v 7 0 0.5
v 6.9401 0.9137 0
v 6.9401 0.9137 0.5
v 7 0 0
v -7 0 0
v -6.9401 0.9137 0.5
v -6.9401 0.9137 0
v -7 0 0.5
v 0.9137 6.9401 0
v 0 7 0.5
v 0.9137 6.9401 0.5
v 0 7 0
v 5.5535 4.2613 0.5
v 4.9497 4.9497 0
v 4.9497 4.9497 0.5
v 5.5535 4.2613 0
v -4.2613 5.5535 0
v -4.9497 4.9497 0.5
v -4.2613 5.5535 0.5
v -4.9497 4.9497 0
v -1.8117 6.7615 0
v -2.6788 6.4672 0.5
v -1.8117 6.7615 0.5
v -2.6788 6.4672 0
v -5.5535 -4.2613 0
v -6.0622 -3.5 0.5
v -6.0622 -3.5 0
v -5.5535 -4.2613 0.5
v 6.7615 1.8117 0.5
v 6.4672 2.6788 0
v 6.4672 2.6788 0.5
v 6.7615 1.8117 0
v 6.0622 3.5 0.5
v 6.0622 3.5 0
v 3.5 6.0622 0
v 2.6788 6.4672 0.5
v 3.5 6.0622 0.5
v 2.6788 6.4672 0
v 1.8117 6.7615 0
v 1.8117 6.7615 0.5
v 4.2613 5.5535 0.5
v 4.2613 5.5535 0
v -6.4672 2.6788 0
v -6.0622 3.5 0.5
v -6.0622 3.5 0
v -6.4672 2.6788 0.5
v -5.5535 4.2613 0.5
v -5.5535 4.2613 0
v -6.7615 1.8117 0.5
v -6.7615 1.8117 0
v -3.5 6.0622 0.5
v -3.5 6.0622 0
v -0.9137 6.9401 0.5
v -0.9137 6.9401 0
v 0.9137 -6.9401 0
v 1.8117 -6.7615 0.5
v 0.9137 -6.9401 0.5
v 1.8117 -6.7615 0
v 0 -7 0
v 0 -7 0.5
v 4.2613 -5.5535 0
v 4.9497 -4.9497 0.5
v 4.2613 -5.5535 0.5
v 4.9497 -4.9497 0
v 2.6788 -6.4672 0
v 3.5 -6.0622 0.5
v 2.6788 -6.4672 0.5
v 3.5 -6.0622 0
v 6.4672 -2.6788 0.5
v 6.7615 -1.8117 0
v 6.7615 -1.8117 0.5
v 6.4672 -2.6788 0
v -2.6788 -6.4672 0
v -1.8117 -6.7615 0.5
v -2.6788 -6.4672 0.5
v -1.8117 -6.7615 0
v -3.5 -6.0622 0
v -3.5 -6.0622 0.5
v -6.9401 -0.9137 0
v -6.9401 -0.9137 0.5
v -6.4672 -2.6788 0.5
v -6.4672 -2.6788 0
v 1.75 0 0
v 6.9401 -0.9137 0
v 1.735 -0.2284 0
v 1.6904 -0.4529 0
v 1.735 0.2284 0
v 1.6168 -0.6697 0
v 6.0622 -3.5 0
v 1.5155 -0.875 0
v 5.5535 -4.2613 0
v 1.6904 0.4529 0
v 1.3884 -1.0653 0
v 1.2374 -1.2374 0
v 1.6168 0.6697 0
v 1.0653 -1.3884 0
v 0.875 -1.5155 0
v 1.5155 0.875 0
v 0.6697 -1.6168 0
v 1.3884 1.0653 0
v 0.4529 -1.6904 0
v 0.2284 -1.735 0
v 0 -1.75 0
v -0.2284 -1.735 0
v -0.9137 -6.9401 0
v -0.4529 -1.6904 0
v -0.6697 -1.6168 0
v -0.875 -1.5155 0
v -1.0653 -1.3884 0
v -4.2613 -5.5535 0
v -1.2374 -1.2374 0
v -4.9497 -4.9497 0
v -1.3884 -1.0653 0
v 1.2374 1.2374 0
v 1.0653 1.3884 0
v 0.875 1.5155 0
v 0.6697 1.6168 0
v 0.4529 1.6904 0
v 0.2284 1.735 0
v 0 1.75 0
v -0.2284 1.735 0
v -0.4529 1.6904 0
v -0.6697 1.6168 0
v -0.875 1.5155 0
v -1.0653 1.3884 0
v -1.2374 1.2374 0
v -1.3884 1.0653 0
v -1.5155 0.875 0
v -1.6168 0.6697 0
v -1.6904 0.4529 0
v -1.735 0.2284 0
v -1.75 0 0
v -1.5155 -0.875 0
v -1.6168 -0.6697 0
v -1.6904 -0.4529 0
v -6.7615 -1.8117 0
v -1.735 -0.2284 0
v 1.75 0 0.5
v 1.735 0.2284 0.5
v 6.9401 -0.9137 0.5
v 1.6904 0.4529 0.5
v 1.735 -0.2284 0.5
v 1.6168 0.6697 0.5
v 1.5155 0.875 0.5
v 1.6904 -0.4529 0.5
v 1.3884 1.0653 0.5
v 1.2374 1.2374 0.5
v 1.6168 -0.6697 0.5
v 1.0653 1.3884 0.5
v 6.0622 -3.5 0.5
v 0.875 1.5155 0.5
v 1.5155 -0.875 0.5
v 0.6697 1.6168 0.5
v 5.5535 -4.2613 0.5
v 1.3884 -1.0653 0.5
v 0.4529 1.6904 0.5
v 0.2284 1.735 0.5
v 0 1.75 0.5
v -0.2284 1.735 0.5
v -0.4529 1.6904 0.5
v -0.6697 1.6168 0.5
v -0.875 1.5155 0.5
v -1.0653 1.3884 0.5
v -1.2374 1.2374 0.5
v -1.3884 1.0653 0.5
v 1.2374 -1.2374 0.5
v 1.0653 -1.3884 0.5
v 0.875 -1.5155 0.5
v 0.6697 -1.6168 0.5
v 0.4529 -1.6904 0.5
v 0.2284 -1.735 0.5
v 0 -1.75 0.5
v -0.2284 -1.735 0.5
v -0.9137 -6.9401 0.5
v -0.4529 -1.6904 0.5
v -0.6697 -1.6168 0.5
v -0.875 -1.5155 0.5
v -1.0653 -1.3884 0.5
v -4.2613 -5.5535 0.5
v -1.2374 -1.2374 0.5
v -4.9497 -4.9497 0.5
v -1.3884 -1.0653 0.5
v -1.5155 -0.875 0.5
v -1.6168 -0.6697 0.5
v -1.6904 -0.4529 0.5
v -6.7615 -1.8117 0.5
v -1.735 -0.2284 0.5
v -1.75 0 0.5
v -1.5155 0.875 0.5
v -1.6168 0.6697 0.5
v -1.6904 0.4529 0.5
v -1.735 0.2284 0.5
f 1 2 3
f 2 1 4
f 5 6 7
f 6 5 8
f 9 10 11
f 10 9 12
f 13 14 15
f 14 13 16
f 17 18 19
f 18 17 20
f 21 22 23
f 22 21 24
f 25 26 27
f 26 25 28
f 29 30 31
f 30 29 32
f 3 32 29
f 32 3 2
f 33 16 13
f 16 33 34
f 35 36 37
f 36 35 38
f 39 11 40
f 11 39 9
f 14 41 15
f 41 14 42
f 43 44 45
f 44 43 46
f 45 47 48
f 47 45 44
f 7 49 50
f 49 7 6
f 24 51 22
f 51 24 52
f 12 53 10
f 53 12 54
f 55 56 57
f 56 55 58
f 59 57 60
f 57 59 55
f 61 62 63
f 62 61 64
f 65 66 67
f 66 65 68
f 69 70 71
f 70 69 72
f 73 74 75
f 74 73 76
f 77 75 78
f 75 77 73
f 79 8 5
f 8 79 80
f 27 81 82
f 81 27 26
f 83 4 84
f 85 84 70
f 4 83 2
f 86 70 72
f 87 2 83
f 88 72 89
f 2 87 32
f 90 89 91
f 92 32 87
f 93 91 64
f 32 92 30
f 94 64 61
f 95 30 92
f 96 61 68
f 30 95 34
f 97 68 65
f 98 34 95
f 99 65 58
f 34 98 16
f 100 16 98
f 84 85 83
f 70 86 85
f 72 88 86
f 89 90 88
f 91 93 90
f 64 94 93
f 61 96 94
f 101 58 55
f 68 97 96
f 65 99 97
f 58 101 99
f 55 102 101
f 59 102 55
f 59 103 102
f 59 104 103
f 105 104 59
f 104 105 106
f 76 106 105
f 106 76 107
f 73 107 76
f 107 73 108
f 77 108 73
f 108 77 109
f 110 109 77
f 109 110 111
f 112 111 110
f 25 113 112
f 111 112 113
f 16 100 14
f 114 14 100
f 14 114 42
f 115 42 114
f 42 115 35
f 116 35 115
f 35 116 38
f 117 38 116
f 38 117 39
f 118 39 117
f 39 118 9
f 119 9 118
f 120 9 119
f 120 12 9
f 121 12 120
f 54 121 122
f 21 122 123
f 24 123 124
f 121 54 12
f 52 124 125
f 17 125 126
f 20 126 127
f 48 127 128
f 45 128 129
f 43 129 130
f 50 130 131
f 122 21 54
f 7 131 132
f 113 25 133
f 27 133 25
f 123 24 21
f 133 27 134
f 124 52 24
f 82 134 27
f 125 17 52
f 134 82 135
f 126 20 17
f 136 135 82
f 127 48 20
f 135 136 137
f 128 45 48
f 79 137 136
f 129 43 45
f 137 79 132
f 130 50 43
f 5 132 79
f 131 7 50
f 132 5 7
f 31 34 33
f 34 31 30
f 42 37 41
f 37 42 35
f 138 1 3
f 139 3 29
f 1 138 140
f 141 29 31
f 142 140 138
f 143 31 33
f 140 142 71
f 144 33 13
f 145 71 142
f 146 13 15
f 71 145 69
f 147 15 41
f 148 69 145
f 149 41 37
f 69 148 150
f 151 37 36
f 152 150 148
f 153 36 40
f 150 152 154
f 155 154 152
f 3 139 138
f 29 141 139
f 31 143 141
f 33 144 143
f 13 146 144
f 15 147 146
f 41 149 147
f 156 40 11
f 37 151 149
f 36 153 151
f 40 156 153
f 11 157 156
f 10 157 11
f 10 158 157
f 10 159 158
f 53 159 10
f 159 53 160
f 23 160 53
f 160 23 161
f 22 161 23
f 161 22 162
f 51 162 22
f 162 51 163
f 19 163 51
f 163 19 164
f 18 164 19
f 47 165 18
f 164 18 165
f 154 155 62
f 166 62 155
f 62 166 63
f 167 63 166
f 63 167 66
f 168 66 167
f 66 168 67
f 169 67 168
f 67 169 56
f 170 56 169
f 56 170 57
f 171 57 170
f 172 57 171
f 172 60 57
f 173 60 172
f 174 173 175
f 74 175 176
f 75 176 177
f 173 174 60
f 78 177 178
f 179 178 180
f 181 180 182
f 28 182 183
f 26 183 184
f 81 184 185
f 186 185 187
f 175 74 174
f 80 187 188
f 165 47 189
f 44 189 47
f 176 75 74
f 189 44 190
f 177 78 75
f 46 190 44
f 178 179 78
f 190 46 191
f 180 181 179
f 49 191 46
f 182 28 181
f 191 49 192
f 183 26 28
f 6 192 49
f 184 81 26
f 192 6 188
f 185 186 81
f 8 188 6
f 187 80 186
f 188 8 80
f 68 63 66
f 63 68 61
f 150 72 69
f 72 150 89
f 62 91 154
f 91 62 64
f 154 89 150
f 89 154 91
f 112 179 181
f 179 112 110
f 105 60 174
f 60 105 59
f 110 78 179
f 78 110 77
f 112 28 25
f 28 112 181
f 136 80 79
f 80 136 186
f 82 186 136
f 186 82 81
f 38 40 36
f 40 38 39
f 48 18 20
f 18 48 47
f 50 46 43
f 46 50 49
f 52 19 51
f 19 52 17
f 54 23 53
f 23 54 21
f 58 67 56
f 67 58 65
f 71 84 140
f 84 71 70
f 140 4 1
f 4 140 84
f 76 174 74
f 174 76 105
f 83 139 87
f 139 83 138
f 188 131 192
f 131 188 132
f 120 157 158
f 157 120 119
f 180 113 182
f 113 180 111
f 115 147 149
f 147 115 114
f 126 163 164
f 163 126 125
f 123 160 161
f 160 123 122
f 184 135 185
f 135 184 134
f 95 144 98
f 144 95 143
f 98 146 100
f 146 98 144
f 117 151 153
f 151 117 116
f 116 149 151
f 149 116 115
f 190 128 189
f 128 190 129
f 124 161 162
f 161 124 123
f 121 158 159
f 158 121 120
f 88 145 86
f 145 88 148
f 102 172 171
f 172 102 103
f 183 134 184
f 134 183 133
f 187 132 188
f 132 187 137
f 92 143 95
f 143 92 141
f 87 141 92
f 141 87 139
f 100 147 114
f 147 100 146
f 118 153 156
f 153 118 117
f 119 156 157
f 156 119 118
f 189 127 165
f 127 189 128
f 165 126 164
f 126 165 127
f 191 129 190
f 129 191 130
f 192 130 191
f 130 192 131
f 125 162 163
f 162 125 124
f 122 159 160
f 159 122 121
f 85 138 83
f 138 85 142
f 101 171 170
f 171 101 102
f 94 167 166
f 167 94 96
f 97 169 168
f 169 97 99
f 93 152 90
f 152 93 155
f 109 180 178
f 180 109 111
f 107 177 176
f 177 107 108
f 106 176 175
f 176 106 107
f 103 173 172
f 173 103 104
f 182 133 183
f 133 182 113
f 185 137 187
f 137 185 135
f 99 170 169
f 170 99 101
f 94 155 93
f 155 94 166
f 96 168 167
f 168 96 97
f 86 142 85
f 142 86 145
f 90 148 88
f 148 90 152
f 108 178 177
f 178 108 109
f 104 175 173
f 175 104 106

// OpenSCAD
// file: parameters.scad
// =============================================================================
// Gen-BR — nightly 2026-10-09 (physics_scorer, honest magpylib watts)
// Rotor-only swap for Gen-BO: the diametric Ø5 assists move from ±7 mm to ±6.2 mm around the R50 pole ring (R43.8/50/56.2), the closest spacing that still leaves a 0.9 mm printed web between Ø5.3 pockets (rule ≥0.8). Everything else — bobbins, 595 t windings, stator, Ø134 steel — is Gen-BO. Tonight's 138-row refine scan (ring radius 49–51, coil radii ±0.5, build ±0.4, copper height 7.9–8.3) found nothing better: the 8p/6c flush-seat family is saturated under the ~370 m wire budget, so this is a hair-width step (about +0.2 % over Gen-BO), not a breakthrough.
// Clocking 0 deg (magnets N facing S) + D-flat keyed bore + index notch + flip-symmetric hole map.
// Windable 2-piece bobbin; turns = physics_scorer turns_fit; copper only between flanges.
// Steel back-iron: 2× Ø134 × 4.76 mm (3/16") mild-steel discs (steel_backiron_disc.dxf); magnets sit ON the steel
// (through-pockets) -> score with --back-iron.
// =============================================================================
topology            = "dual_rotor";

// --- Wire / winding (physics_scorer winding-fit) -------------------------------
wire_awg            = 26;
wire_od             = 0.45;     // insulated OD mm (bare 0.405)
fill_realistic      = 0.65;     // insulated-wire area / window (DENSE layered wind with a jig; scorer cap 0.65)
turns               = 595;       // = physics_scorer turns_fit (do NOT raise)
coil_former_type    = "bobbin";
coil_core_inset     = 18.00;     // radial copper build: hub = copper boundary inset by this
wind_build_axial    = 0.0;      // nothing proud of the flanges
wind_build_radial   = 0.0;

// --- Bobbin (base + lid) ---------------------------------------------------------
coil_id_r           = 28.00;    // copper boundary sector
coil_od_r           = 70.00;
span_deg            = 53.24;    // = pitch - 2*asin((wall+0.85)/coil_id_r) -> >=1.2 mm stator web
former_web          = 8.10;     // copper height between flanges (TALL copper: steel keeps Bz up)
flange_t            = 0.80;     // >= 0.8 mm FDM wall rule (tall winds push on the flanges)
wall                = 0.80;     // flange lip beyond copper
former_bare_h       = former_web + 2 * flange_t;
coil_envelope_h     = former_bare_h + 2 * wind_build_axial;
tab_w               = 7.0;
tab_len             = 7.0;
tab_h               = former_bare_h / 2;
pin_d               = 1.9;      // 1.75 mm filament locating pin
coil_mount_r        = coil_od_r + 0.2 + 4.0;
lead_y              = 1.6;
lead_slot_w         = 0.9;
lead_groove_d       = 0.6;

// --- Gap -------------------------------------------------------------------------
run_clear           = 0.50;     // rotor face -> flange
gap_spacer_h        = run_clear + wind_build_axial;
m2m                 = coil_envelope_h + 2 * run_clear;   // rotor face to rotor face (= gap_sleeve length)

// --- Stator ----------------------------------------------------------------------
coil_stations       = 6;
bay_clear           = 0.25;
stator_thick        = former_bare_h;                        // bobbins flush both faces
stator_od           = 158;
shaft_clear_stator  = 14.0;     // stator is static; gap sleeve OD 12 spins inside

// --- Rotor(s) --------------------------------------------------------------------
magnet_Br           = 1.43;     // N52
magnet_d_large      = 20.0;
magnet_h_large      = 5.0;      // one O20x5 per pocket
magnet_h_small      = 5.0;      // one O5x5 per pocket
halbach_magnetisation = "diametric"; // O5x5 assist magnets MUST be DIAMETRICALLY magnetised (tangential)
rotor_b_same_axis   = true;     // same-index magnets share one axis: N faces S across the gap
large_pocket_d      = 20.3;
small_pocket_d      = 5.3;
pocket_h            = 5.00;     // THROUGH the carrier: magnet back face sits on the steel disc (FLUSH seat: carrier = magnet height, magnet face level with the rotor face)
large_n             = 8;
R_large             = 50.0;
R_small_inner       = 43.8;
R_small_mid         = 50.0;
R_small_outer       = 56.2;
small_r_list        = [R_small_inner, R_small_mid, R_small_outer];   // O5 pockets between poles
carrier_od          = 134.0;
carrier_thick       = pocket_h;
hub_h               = 12.0;     // > steel_t + insert: radial set-screw clears the steel
hub_od              = 24.0;     // slim hub so the M4 brace rods fit at R~18 inside the coil ring
hub_insert_d        = 4.0;      // M3 heat-set insert, radial, bears on the D-flat
rotor_b_offset_deg  = 0.0;      // CLOCKING: magnets directly opposite
shaft_key           = "dflat";
dflat_depth         = 0.5;      // 8 mm shaft with 0.5 mm flat (7.5 across flat)
index_notch_d       = 3.0;

// --- Steel back-iron (buyable laser-cut) -------------------------------------------
steel_t             = 4.76;      // mild steel thickness (image method ignores it; sized from steel_flux.py so the return path stays well below saturation)
steel_center_hole   = 26.0;     // slips over the rotor hub (OD 24)
steel_od            = carrier_od;   // steel disc OD = rotor carrier OD

// --- Modular MAX interface ----------------------------------------------------------
shaft_bore          = 8.35;
dflat_x             = 4.0 - dflat_depth + (shaft_bore - 8.0) / 2;
bearing_d           = 21.85;
bearing_h           = 7.2;
m3_clear            = 3.5;
bolt_r_inner        = 30.0;     // M3 steel-disc clamp bolts (inside the magnet ring)
bolt_n_inner        = 4;
bolt_inner_angles   = [0, 90, 180, 270];
bolt_r_outer        = 63.0;     // M3 steel-disc clamp bolts (outside the magnet ring)
bolt_outer_angles   = [45, 135, 225, 315];
flange_bolt_r       = 73.0;     // frame rods: OUTSIDE the rotor OD (rotors spin inside them)
flange_bolt_n       = 6;
flange_bolt_offset  = 30.00;    // between coil stations -> never cuts a lead groove/tab
brace_r             = 18.0;
brace_d             = 4.3;      // temporary M4 jack rods (assembly only)
brace_n             = 4;
brace_angles        = [45, 135, 225, 315];          // flip-symmetric

spacer_pad_od       = 14.0;
spacer_pad_id       = m3_clear;
endbell_od          = 158;
endbell_thick       = 8.0;
endbell_shaft_clear = 10.0;
collar_h            = 10.0;
standoff_od         = 9.0;
frame_standoff_h    = run_clear + carrier_thick + hub_h + collar_h + 2.0;
sleeve_od           = 12.0;
plate_max_mm        = 410;

$fn = 64;
// main file
// Gen-BR — assembly gap shim, h = run_clear (rotor face -> flange); copper is inside the flanges
include <parameters.scad>;
$fn = 48;
difference() {
    cylinder(d=spacer_pad_od, h=gap_spacer_h);
    translate([0, 0, -0.1]) cylinder(d=spacer_pad_id, h=gap_spacer_h + 0.2);
}
